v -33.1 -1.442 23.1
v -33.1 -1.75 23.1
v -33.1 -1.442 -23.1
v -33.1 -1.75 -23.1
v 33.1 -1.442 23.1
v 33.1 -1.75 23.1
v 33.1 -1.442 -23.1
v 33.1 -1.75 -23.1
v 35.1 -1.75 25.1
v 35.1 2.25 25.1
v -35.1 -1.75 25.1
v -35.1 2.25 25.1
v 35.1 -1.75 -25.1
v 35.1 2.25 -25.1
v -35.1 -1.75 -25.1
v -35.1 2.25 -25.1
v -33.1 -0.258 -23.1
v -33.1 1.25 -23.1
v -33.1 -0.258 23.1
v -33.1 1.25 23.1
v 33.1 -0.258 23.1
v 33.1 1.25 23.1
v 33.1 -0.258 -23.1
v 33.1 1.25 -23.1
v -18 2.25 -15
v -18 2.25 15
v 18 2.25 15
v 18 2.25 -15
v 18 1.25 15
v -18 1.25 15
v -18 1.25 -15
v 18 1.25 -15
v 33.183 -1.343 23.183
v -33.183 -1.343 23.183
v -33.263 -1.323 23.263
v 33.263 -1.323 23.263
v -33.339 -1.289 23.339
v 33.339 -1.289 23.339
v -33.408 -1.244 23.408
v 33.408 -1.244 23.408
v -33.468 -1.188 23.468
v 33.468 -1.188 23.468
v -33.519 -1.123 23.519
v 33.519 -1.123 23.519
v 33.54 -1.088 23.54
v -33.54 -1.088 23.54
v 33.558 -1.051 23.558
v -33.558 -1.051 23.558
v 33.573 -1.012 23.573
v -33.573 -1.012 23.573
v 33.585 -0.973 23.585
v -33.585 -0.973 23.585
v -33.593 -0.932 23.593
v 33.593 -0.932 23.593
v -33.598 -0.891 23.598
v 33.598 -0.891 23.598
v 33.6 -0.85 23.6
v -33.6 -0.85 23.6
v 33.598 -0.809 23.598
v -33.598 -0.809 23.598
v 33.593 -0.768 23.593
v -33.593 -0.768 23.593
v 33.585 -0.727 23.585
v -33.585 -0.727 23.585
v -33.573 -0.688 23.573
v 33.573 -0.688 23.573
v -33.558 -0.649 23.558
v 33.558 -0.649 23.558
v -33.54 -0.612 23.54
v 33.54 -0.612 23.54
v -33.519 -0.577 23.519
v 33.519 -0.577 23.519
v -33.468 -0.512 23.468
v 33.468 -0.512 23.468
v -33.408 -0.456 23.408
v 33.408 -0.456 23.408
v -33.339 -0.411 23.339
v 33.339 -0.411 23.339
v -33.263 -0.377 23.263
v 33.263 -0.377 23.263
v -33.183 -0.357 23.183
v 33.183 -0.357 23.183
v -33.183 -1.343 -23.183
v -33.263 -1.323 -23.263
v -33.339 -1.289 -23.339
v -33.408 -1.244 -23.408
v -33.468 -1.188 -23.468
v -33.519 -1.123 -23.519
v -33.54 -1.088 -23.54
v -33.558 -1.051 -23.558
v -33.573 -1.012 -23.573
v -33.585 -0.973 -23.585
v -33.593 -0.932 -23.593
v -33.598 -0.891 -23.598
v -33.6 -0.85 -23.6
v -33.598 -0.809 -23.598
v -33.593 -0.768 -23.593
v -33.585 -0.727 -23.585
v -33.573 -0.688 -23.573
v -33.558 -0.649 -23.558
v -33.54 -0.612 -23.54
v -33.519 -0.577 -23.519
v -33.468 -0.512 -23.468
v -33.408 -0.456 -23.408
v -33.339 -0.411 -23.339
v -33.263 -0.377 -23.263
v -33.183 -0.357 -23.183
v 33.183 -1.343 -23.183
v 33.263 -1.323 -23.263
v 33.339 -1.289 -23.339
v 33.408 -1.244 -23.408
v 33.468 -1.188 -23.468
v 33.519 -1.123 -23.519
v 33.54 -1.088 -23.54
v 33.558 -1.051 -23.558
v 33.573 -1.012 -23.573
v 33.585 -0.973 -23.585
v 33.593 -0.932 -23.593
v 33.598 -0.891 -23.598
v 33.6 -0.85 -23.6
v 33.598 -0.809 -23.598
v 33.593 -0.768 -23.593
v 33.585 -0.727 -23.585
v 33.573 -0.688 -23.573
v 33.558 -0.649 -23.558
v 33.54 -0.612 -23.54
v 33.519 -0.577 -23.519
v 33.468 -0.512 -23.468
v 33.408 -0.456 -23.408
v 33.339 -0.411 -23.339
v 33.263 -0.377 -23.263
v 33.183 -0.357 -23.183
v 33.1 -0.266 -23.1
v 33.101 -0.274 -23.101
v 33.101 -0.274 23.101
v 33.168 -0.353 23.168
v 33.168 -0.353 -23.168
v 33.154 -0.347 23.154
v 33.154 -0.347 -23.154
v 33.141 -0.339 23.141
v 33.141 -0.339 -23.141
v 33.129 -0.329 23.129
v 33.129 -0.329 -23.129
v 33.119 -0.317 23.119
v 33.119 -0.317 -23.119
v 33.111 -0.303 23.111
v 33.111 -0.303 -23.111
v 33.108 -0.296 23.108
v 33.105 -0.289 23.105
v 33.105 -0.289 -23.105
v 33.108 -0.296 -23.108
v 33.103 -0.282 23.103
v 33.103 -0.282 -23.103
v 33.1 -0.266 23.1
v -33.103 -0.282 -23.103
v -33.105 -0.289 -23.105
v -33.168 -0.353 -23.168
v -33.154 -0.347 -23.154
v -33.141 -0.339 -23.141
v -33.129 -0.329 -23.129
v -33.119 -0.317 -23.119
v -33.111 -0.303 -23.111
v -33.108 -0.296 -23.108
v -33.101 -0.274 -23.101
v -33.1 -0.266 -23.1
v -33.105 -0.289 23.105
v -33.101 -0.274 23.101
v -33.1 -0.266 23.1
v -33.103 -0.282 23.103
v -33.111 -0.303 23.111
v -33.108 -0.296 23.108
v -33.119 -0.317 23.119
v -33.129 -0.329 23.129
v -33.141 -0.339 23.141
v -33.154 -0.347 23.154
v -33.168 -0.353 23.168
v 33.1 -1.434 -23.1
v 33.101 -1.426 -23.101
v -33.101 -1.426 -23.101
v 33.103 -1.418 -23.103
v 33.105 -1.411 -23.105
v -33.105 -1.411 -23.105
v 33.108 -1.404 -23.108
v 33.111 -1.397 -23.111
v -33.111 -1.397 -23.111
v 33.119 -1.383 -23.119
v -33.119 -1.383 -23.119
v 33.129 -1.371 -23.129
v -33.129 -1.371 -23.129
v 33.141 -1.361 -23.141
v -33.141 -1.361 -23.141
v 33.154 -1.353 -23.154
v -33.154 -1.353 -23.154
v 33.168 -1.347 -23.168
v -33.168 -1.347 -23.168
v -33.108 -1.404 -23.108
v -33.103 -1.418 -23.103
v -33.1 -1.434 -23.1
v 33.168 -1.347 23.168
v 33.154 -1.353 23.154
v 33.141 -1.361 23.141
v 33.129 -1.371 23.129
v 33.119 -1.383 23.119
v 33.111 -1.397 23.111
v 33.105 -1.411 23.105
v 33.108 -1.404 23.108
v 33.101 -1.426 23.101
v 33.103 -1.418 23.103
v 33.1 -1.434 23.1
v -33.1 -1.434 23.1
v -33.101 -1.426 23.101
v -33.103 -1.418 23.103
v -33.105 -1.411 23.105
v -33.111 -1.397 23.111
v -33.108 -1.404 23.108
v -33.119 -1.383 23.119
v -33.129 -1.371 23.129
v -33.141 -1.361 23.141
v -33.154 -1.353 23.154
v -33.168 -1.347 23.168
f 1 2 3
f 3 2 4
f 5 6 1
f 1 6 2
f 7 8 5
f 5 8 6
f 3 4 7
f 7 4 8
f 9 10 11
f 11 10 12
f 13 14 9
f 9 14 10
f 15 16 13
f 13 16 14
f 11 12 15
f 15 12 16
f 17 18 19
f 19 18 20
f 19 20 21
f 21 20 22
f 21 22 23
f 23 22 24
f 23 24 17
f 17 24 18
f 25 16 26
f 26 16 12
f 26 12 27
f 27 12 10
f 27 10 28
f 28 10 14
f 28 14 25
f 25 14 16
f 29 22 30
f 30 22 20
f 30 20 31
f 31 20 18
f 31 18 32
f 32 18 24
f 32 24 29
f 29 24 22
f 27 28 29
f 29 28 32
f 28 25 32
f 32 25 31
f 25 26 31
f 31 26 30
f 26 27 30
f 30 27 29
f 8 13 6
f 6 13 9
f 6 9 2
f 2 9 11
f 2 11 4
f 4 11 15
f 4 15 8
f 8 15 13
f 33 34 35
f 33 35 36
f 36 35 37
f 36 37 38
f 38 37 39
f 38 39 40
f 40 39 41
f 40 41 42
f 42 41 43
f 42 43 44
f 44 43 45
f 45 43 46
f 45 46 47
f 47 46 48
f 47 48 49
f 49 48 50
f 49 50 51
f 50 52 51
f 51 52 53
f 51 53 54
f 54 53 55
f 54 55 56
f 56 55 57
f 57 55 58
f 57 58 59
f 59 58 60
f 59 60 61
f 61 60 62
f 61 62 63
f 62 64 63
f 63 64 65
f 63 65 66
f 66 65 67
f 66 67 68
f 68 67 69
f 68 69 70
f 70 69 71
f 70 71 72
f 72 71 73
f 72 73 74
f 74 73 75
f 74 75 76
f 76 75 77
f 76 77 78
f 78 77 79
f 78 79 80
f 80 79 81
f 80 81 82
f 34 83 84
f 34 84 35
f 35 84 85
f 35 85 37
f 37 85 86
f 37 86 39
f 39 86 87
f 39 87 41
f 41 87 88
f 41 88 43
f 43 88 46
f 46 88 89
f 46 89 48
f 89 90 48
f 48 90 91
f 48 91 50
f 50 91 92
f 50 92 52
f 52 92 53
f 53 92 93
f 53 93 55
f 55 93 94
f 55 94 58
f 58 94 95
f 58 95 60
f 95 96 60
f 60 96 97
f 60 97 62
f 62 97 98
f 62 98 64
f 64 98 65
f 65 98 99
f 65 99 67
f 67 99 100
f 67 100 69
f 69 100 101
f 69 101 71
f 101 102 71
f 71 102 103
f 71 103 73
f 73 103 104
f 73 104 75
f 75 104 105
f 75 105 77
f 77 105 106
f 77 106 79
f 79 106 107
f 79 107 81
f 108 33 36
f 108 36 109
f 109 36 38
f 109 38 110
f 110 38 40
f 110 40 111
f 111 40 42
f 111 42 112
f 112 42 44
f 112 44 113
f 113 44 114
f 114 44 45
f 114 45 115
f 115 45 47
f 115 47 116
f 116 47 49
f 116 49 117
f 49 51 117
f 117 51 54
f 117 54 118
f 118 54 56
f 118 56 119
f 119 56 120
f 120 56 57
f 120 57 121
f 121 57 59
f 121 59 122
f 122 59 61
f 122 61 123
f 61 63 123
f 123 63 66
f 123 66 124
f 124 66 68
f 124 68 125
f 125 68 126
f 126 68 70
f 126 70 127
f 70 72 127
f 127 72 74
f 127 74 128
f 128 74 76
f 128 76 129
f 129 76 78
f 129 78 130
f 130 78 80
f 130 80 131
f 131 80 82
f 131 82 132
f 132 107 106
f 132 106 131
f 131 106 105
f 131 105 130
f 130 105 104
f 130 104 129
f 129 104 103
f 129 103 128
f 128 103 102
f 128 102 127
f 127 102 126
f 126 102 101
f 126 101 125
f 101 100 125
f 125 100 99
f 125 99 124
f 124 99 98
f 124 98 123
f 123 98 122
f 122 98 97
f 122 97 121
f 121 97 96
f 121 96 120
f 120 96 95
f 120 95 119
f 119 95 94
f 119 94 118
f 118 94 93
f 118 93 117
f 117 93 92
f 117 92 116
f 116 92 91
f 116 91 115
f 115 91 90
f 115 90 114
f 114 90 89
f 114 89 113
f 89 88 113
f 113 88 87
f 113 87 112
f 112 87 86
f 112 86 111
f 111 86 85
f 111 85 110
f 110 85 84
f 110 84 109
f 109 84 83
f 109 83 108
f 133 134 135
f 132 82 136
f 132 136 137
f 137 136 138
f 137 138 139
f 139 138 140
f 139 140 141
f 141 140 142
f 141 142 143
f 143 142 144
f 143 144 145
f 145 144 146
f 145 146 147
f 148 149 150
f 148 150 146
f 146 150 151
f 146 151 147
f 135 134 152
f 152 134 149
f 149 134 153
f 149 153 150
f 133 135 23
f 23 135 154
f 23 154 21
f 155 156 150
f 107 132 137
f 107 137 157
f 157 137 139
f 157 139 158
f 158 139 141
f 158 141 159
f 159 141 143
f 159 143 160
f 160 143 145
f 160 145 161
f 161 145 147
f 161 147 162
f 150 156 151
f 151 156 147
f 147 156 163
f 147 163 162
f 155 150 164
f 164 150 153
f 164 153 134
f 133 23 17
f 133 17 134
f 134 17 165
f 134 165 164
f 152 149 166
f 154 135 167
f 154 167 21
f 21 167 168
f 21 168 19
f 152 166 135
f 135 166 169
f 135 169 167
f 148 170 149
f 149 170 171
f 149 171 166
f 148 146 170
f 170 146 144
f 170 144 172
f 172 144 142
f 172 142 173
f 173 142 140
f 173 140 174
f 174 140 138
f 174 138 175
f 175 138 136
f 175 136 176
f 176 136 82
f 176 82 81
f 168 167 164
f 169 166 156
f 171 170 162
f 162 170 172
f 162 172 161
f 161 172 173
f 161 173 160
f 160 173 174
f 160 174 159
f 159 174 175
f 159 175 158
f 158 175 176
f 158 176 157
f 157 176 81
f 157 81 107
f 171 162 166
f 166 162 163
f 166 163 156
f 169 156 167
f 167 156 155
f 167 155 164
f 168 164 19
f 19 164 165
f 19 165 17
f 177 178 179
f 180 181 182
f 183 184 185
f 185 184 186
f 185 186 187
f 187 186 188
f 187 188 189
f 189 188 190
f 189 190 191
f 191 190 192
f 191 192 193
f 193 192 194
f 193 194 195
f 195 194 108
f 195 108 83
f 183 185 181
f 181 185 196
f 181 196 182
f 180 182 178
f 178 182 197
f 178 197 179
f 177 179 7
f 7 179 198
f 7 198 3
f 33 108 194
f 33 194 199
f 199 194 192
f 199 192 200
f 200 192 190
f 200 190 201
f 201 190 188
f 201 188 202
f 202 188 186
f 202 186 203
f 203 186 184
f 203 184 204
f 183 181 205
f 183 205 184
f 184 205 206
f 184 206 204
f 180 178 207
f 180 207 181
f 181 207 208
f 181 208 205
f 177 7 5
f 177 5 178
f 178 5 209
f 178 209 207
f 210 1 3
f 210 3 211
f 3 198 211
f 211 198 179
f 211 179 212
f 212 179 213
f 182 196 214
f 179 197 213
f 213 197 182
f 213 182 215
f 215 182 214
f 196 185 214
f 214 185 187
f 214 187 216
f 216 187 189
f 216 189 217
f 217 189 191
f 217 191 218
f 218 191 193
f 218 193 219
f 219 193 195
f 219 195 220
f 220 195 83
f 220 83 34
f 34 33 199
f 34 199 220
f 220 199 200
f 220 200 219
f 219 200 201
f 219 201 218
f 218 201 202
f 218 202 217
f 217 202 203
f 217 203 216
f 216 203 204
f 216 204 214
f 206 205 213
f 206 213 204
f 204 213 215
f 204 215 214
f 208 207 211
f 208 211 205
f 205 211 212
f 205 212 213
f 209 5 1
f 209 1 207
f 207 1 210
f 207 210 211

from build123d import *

# Parameters (mm, degrees)
SKETCH1_W            = 70.2
SKETCH1_H            = 50.2
SKETCH1_W_2          = 66.2
SKETCH1_H_2          = 46.2
BOSS_EXTRUDE1_DEPTH  = 1.25
SKETCH2_W            = 70.2
SKETCH2_H            = 50.2
SKETCH2_W_2          = 36
SKETCH2_H_2          = 30
BOSS_EXTRUDE2_DEPTH  = 1
SKETCH15_W           = 70.2
SKETCH15_H           = 50.2
SKETCH15_W_2         = 66.2
SKETCH15_H_2         = 46.2
BOSS_EXTRUDE3_DEPTH  = 1.75
CUT_SWEEP2_PROFILE_R = 0.5
FILLET2_R            = 0.1


with BuildPart() as part:
    # Sketch1 → Boss-Extrude1 (new body)
    with BuildSketch(Plane(origin=(0, 0, 0), x_dir=(1, 0, 0), z_dir=(0, 1, 0))):
        Rectangle(SKETCH1_W, SKETCH1_H)
        Rectangle(SKETCH1_W_2, SKETCH1_H_2, mode=Mode.SUBTRACT)
    extrude(amount=BOSS_EXTRUDE1_DEPTH)

    # Sketch2 → Boss-Extrude2 (add)
    with BuildSketch(Plane(origin=(0, 1.25, 0), x_dir=(1, 0, 0), z_dir=(0, 1, 0))):
        Rectangle(SKETCH2_W, SKETCH2_H)
        Rectangle(SKETCH2_W_2, SKETCH2_H_2, mode=Mode.SUBTRACT)
    extrude(amount=BOSS_EXTRUDE2_DEPTH)

    # Sketch15 → Boss-Extrude3 (add)
    with BuildSketch(Plane.XZ):
        Rectangle(SKETCH15_W, SKETCH15_H)
        Rectangle(SKETCH15_W_2, SKETCH15_H_2, mode=Mode.SUBTRACT)
    extrude(amount=BOSS_EXTRUDE3_DEPTH)

    # Cut-Sweep2: sweep along a path in Sketch3
    with BuildLine(Plane(origin=(0, -0.85, 0), x_dir=(-1, 0, 0), z_dir=(0, -1, 0))) as cut_sweep2_path:
        Line((-33.1, 23.1), (33.1, 23.1))
        Line((33.1, 23.1), (33.1, -23.1))
        Line((33.1, -23.1), (-33.1, -23.1))
        Line((-33.1, -23.1), (-33.1, 23.1))
    # Cut-Sweep2 profile (on start of the path) → Cut-Sweep2 (sweep, cut)
    with BuildSketch(Plane(origin=(33.1, -0.85, -23.1), x_dir=(0, 0, -1), z_dir=(-1, 0, 0))):
        Circle(CUT_SWEEP2_PROFILE_R)
    sweep(path=cut_sweep2_path.line, transition=Transition.RIGHT, mode=Mode.SUBTRACT)

    # Fillet2
    fillet2_edges = [part.edges().sort_by_distance(p)[0] for p in [
        (0, -0.35, -23.1),
        (0, -1.35, -23.1),
        (0, -1.35, 23.1),
        (0, -0.35, 23.1),
        (-33.1, -1.35, 0),
        (-33.1, -0.35, 0),
        (33.1, -1.35, 0),
        (33.1, -0.35, 0),
    ]]
    fillet(fillet2_edges, radius=FILLET2_R)


solid = part.part
